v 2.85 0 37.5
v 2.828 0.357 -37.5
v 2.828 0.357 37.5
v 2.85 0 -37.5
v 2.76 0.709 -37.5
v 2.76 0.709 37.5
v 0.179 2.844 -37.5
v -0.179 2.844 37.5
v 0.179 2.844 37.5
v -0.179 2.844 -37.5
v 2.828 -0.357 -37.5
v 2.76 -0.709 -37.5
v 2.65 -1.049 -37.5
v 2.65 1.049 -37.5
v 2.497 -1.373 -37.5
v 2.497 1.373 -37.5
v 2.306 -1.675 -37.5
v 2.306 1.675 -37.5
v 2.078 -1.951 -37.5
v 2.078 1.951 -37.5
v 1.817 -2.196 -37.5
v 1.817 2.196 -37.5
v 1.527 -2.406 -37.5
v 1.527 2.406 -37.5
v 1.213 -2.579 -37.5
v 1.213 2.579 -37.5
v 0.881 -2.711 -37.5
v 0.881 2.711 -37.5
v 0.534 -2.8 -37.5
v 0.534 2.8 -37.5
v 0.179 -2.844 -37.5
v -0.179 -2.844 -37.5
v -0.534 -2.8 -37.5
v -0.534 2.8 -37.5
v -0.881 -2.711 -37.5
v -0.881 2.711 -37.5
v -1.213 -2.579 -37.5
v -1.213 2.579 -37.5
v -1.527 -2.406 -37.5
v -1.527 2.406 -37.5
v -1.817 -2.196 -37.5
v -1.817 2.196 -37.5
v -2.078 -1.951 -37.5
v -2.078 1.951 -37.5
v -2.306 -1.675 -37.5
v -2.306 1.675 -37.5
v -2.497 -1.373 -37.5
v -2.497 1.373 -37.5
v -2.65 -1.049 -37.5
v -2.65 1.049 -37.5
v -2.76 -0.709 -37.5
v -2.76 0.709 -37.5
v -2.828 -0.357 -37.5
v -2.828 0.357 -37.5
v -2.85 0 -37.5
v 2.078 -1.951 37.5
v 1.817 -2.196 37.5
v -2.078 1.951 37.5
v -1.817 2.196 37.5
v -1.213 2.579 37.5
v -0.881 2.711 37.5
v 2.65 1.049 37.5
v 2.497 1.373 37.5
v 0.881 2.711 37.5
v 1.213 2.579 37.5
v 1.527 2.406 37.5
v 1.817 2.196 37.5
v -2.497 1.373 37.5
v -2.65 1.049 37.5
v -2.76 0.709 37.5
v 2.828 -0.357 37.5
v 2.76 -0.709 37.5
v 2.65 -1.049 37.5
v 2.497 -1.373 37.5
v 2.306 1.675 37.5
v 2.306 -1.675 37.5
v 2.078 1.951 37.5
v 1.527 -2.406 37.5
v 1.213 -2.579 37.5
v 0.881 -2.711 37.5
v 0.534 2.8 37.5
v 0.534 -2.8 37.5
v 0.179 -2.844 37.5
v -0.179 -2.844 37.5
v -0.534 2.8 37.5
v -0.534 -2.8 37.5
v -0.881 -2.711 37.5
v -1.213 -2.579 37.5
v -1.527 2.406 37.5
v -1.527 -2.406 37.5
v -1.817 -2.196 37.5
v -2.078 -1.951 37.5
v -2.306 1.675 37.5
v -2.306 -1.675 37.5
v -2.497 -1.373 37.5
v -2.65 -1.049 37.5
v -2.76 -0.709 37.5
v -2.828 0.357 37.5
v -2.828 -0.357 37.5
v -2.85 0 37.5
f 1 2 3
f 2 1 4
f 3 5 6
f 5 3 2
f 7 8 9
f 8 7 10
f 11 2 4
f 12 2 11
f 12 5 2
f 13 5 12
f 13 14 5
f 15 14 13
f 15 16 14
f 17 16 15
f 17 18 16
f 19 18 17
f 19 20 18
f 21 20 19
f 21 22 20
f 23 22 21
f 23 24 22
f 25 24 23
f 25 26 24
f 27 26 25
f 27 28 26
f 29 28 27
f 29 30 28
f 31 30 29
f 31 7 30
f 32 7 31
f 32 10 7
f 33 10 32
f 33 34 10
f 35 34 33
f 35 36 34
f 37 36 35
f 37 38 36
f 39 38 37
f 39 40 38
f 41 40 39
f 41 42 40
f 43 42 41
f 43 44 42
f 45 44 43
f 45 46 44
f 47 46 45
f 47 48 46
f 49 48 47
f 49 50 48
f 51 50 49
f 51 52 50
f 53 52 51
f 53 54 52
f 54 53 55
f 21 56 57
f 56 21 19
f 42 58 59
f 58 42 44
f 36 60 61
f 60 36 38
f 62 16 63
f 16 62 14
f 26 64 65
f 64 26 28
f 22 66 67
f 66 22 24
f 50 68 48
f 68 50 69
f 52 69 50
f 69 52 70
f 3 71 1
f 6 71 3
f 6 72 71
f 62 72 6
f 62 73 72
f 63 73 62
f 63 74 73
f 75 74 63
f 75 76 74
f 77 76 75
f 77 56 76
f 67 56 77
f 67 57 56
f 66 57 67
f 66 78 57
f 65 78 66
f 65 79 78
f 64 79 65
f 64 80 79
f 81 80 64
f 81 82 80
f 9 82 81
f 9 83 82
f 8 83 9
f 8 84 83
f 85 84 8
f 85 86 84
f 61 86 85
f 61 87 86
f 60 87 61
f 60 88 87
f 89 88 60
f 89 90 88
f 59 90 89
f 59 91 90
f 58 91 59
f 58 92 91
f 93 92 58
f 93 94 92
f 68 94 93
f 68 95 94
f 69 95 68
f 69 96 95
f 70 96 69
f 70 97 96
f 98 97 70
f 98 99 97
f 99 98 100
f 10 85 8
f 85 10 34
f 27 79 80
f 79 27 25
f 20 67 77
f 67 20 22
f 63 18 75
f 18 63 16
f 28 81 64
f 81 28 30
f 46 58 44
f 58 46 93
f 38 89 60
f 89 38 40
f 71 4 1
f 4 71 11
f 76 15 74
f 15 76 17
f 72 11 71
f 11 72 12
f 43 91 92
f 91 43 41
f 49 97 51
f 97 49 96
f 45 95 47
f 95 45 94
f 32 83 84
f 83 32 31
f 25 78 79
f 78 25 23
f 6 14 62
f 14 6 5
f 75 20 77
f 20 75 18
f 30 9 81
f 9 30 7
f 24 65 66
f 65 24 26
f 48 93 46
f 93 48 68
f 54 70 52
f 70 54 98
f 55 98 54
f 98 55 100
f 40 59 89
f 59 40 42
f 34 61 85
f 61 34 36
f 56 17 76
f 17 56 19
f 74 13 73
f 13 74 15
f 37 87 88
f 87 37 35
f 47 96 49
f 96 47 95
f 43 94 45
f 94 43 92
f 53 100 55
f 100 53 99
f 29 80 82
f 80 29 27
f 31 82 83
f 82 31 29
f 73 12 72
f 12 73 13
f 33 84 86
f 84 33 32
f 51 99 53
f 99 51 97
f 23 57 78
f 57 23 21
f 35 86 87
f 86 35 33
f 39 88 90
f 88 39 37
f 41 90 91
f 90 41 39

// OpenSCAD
$fn = 50;


difference() {
	union() {
		translate(v = [0, 0, -37.5000000000]) {
			cylinder(h = 75, r = 2.8500000000);
		}
	}
	union() {
		translate(v = [0, 0, -100.0000000000]) {
			cylinder(h = 200, r = 0);
		}
	}
}
